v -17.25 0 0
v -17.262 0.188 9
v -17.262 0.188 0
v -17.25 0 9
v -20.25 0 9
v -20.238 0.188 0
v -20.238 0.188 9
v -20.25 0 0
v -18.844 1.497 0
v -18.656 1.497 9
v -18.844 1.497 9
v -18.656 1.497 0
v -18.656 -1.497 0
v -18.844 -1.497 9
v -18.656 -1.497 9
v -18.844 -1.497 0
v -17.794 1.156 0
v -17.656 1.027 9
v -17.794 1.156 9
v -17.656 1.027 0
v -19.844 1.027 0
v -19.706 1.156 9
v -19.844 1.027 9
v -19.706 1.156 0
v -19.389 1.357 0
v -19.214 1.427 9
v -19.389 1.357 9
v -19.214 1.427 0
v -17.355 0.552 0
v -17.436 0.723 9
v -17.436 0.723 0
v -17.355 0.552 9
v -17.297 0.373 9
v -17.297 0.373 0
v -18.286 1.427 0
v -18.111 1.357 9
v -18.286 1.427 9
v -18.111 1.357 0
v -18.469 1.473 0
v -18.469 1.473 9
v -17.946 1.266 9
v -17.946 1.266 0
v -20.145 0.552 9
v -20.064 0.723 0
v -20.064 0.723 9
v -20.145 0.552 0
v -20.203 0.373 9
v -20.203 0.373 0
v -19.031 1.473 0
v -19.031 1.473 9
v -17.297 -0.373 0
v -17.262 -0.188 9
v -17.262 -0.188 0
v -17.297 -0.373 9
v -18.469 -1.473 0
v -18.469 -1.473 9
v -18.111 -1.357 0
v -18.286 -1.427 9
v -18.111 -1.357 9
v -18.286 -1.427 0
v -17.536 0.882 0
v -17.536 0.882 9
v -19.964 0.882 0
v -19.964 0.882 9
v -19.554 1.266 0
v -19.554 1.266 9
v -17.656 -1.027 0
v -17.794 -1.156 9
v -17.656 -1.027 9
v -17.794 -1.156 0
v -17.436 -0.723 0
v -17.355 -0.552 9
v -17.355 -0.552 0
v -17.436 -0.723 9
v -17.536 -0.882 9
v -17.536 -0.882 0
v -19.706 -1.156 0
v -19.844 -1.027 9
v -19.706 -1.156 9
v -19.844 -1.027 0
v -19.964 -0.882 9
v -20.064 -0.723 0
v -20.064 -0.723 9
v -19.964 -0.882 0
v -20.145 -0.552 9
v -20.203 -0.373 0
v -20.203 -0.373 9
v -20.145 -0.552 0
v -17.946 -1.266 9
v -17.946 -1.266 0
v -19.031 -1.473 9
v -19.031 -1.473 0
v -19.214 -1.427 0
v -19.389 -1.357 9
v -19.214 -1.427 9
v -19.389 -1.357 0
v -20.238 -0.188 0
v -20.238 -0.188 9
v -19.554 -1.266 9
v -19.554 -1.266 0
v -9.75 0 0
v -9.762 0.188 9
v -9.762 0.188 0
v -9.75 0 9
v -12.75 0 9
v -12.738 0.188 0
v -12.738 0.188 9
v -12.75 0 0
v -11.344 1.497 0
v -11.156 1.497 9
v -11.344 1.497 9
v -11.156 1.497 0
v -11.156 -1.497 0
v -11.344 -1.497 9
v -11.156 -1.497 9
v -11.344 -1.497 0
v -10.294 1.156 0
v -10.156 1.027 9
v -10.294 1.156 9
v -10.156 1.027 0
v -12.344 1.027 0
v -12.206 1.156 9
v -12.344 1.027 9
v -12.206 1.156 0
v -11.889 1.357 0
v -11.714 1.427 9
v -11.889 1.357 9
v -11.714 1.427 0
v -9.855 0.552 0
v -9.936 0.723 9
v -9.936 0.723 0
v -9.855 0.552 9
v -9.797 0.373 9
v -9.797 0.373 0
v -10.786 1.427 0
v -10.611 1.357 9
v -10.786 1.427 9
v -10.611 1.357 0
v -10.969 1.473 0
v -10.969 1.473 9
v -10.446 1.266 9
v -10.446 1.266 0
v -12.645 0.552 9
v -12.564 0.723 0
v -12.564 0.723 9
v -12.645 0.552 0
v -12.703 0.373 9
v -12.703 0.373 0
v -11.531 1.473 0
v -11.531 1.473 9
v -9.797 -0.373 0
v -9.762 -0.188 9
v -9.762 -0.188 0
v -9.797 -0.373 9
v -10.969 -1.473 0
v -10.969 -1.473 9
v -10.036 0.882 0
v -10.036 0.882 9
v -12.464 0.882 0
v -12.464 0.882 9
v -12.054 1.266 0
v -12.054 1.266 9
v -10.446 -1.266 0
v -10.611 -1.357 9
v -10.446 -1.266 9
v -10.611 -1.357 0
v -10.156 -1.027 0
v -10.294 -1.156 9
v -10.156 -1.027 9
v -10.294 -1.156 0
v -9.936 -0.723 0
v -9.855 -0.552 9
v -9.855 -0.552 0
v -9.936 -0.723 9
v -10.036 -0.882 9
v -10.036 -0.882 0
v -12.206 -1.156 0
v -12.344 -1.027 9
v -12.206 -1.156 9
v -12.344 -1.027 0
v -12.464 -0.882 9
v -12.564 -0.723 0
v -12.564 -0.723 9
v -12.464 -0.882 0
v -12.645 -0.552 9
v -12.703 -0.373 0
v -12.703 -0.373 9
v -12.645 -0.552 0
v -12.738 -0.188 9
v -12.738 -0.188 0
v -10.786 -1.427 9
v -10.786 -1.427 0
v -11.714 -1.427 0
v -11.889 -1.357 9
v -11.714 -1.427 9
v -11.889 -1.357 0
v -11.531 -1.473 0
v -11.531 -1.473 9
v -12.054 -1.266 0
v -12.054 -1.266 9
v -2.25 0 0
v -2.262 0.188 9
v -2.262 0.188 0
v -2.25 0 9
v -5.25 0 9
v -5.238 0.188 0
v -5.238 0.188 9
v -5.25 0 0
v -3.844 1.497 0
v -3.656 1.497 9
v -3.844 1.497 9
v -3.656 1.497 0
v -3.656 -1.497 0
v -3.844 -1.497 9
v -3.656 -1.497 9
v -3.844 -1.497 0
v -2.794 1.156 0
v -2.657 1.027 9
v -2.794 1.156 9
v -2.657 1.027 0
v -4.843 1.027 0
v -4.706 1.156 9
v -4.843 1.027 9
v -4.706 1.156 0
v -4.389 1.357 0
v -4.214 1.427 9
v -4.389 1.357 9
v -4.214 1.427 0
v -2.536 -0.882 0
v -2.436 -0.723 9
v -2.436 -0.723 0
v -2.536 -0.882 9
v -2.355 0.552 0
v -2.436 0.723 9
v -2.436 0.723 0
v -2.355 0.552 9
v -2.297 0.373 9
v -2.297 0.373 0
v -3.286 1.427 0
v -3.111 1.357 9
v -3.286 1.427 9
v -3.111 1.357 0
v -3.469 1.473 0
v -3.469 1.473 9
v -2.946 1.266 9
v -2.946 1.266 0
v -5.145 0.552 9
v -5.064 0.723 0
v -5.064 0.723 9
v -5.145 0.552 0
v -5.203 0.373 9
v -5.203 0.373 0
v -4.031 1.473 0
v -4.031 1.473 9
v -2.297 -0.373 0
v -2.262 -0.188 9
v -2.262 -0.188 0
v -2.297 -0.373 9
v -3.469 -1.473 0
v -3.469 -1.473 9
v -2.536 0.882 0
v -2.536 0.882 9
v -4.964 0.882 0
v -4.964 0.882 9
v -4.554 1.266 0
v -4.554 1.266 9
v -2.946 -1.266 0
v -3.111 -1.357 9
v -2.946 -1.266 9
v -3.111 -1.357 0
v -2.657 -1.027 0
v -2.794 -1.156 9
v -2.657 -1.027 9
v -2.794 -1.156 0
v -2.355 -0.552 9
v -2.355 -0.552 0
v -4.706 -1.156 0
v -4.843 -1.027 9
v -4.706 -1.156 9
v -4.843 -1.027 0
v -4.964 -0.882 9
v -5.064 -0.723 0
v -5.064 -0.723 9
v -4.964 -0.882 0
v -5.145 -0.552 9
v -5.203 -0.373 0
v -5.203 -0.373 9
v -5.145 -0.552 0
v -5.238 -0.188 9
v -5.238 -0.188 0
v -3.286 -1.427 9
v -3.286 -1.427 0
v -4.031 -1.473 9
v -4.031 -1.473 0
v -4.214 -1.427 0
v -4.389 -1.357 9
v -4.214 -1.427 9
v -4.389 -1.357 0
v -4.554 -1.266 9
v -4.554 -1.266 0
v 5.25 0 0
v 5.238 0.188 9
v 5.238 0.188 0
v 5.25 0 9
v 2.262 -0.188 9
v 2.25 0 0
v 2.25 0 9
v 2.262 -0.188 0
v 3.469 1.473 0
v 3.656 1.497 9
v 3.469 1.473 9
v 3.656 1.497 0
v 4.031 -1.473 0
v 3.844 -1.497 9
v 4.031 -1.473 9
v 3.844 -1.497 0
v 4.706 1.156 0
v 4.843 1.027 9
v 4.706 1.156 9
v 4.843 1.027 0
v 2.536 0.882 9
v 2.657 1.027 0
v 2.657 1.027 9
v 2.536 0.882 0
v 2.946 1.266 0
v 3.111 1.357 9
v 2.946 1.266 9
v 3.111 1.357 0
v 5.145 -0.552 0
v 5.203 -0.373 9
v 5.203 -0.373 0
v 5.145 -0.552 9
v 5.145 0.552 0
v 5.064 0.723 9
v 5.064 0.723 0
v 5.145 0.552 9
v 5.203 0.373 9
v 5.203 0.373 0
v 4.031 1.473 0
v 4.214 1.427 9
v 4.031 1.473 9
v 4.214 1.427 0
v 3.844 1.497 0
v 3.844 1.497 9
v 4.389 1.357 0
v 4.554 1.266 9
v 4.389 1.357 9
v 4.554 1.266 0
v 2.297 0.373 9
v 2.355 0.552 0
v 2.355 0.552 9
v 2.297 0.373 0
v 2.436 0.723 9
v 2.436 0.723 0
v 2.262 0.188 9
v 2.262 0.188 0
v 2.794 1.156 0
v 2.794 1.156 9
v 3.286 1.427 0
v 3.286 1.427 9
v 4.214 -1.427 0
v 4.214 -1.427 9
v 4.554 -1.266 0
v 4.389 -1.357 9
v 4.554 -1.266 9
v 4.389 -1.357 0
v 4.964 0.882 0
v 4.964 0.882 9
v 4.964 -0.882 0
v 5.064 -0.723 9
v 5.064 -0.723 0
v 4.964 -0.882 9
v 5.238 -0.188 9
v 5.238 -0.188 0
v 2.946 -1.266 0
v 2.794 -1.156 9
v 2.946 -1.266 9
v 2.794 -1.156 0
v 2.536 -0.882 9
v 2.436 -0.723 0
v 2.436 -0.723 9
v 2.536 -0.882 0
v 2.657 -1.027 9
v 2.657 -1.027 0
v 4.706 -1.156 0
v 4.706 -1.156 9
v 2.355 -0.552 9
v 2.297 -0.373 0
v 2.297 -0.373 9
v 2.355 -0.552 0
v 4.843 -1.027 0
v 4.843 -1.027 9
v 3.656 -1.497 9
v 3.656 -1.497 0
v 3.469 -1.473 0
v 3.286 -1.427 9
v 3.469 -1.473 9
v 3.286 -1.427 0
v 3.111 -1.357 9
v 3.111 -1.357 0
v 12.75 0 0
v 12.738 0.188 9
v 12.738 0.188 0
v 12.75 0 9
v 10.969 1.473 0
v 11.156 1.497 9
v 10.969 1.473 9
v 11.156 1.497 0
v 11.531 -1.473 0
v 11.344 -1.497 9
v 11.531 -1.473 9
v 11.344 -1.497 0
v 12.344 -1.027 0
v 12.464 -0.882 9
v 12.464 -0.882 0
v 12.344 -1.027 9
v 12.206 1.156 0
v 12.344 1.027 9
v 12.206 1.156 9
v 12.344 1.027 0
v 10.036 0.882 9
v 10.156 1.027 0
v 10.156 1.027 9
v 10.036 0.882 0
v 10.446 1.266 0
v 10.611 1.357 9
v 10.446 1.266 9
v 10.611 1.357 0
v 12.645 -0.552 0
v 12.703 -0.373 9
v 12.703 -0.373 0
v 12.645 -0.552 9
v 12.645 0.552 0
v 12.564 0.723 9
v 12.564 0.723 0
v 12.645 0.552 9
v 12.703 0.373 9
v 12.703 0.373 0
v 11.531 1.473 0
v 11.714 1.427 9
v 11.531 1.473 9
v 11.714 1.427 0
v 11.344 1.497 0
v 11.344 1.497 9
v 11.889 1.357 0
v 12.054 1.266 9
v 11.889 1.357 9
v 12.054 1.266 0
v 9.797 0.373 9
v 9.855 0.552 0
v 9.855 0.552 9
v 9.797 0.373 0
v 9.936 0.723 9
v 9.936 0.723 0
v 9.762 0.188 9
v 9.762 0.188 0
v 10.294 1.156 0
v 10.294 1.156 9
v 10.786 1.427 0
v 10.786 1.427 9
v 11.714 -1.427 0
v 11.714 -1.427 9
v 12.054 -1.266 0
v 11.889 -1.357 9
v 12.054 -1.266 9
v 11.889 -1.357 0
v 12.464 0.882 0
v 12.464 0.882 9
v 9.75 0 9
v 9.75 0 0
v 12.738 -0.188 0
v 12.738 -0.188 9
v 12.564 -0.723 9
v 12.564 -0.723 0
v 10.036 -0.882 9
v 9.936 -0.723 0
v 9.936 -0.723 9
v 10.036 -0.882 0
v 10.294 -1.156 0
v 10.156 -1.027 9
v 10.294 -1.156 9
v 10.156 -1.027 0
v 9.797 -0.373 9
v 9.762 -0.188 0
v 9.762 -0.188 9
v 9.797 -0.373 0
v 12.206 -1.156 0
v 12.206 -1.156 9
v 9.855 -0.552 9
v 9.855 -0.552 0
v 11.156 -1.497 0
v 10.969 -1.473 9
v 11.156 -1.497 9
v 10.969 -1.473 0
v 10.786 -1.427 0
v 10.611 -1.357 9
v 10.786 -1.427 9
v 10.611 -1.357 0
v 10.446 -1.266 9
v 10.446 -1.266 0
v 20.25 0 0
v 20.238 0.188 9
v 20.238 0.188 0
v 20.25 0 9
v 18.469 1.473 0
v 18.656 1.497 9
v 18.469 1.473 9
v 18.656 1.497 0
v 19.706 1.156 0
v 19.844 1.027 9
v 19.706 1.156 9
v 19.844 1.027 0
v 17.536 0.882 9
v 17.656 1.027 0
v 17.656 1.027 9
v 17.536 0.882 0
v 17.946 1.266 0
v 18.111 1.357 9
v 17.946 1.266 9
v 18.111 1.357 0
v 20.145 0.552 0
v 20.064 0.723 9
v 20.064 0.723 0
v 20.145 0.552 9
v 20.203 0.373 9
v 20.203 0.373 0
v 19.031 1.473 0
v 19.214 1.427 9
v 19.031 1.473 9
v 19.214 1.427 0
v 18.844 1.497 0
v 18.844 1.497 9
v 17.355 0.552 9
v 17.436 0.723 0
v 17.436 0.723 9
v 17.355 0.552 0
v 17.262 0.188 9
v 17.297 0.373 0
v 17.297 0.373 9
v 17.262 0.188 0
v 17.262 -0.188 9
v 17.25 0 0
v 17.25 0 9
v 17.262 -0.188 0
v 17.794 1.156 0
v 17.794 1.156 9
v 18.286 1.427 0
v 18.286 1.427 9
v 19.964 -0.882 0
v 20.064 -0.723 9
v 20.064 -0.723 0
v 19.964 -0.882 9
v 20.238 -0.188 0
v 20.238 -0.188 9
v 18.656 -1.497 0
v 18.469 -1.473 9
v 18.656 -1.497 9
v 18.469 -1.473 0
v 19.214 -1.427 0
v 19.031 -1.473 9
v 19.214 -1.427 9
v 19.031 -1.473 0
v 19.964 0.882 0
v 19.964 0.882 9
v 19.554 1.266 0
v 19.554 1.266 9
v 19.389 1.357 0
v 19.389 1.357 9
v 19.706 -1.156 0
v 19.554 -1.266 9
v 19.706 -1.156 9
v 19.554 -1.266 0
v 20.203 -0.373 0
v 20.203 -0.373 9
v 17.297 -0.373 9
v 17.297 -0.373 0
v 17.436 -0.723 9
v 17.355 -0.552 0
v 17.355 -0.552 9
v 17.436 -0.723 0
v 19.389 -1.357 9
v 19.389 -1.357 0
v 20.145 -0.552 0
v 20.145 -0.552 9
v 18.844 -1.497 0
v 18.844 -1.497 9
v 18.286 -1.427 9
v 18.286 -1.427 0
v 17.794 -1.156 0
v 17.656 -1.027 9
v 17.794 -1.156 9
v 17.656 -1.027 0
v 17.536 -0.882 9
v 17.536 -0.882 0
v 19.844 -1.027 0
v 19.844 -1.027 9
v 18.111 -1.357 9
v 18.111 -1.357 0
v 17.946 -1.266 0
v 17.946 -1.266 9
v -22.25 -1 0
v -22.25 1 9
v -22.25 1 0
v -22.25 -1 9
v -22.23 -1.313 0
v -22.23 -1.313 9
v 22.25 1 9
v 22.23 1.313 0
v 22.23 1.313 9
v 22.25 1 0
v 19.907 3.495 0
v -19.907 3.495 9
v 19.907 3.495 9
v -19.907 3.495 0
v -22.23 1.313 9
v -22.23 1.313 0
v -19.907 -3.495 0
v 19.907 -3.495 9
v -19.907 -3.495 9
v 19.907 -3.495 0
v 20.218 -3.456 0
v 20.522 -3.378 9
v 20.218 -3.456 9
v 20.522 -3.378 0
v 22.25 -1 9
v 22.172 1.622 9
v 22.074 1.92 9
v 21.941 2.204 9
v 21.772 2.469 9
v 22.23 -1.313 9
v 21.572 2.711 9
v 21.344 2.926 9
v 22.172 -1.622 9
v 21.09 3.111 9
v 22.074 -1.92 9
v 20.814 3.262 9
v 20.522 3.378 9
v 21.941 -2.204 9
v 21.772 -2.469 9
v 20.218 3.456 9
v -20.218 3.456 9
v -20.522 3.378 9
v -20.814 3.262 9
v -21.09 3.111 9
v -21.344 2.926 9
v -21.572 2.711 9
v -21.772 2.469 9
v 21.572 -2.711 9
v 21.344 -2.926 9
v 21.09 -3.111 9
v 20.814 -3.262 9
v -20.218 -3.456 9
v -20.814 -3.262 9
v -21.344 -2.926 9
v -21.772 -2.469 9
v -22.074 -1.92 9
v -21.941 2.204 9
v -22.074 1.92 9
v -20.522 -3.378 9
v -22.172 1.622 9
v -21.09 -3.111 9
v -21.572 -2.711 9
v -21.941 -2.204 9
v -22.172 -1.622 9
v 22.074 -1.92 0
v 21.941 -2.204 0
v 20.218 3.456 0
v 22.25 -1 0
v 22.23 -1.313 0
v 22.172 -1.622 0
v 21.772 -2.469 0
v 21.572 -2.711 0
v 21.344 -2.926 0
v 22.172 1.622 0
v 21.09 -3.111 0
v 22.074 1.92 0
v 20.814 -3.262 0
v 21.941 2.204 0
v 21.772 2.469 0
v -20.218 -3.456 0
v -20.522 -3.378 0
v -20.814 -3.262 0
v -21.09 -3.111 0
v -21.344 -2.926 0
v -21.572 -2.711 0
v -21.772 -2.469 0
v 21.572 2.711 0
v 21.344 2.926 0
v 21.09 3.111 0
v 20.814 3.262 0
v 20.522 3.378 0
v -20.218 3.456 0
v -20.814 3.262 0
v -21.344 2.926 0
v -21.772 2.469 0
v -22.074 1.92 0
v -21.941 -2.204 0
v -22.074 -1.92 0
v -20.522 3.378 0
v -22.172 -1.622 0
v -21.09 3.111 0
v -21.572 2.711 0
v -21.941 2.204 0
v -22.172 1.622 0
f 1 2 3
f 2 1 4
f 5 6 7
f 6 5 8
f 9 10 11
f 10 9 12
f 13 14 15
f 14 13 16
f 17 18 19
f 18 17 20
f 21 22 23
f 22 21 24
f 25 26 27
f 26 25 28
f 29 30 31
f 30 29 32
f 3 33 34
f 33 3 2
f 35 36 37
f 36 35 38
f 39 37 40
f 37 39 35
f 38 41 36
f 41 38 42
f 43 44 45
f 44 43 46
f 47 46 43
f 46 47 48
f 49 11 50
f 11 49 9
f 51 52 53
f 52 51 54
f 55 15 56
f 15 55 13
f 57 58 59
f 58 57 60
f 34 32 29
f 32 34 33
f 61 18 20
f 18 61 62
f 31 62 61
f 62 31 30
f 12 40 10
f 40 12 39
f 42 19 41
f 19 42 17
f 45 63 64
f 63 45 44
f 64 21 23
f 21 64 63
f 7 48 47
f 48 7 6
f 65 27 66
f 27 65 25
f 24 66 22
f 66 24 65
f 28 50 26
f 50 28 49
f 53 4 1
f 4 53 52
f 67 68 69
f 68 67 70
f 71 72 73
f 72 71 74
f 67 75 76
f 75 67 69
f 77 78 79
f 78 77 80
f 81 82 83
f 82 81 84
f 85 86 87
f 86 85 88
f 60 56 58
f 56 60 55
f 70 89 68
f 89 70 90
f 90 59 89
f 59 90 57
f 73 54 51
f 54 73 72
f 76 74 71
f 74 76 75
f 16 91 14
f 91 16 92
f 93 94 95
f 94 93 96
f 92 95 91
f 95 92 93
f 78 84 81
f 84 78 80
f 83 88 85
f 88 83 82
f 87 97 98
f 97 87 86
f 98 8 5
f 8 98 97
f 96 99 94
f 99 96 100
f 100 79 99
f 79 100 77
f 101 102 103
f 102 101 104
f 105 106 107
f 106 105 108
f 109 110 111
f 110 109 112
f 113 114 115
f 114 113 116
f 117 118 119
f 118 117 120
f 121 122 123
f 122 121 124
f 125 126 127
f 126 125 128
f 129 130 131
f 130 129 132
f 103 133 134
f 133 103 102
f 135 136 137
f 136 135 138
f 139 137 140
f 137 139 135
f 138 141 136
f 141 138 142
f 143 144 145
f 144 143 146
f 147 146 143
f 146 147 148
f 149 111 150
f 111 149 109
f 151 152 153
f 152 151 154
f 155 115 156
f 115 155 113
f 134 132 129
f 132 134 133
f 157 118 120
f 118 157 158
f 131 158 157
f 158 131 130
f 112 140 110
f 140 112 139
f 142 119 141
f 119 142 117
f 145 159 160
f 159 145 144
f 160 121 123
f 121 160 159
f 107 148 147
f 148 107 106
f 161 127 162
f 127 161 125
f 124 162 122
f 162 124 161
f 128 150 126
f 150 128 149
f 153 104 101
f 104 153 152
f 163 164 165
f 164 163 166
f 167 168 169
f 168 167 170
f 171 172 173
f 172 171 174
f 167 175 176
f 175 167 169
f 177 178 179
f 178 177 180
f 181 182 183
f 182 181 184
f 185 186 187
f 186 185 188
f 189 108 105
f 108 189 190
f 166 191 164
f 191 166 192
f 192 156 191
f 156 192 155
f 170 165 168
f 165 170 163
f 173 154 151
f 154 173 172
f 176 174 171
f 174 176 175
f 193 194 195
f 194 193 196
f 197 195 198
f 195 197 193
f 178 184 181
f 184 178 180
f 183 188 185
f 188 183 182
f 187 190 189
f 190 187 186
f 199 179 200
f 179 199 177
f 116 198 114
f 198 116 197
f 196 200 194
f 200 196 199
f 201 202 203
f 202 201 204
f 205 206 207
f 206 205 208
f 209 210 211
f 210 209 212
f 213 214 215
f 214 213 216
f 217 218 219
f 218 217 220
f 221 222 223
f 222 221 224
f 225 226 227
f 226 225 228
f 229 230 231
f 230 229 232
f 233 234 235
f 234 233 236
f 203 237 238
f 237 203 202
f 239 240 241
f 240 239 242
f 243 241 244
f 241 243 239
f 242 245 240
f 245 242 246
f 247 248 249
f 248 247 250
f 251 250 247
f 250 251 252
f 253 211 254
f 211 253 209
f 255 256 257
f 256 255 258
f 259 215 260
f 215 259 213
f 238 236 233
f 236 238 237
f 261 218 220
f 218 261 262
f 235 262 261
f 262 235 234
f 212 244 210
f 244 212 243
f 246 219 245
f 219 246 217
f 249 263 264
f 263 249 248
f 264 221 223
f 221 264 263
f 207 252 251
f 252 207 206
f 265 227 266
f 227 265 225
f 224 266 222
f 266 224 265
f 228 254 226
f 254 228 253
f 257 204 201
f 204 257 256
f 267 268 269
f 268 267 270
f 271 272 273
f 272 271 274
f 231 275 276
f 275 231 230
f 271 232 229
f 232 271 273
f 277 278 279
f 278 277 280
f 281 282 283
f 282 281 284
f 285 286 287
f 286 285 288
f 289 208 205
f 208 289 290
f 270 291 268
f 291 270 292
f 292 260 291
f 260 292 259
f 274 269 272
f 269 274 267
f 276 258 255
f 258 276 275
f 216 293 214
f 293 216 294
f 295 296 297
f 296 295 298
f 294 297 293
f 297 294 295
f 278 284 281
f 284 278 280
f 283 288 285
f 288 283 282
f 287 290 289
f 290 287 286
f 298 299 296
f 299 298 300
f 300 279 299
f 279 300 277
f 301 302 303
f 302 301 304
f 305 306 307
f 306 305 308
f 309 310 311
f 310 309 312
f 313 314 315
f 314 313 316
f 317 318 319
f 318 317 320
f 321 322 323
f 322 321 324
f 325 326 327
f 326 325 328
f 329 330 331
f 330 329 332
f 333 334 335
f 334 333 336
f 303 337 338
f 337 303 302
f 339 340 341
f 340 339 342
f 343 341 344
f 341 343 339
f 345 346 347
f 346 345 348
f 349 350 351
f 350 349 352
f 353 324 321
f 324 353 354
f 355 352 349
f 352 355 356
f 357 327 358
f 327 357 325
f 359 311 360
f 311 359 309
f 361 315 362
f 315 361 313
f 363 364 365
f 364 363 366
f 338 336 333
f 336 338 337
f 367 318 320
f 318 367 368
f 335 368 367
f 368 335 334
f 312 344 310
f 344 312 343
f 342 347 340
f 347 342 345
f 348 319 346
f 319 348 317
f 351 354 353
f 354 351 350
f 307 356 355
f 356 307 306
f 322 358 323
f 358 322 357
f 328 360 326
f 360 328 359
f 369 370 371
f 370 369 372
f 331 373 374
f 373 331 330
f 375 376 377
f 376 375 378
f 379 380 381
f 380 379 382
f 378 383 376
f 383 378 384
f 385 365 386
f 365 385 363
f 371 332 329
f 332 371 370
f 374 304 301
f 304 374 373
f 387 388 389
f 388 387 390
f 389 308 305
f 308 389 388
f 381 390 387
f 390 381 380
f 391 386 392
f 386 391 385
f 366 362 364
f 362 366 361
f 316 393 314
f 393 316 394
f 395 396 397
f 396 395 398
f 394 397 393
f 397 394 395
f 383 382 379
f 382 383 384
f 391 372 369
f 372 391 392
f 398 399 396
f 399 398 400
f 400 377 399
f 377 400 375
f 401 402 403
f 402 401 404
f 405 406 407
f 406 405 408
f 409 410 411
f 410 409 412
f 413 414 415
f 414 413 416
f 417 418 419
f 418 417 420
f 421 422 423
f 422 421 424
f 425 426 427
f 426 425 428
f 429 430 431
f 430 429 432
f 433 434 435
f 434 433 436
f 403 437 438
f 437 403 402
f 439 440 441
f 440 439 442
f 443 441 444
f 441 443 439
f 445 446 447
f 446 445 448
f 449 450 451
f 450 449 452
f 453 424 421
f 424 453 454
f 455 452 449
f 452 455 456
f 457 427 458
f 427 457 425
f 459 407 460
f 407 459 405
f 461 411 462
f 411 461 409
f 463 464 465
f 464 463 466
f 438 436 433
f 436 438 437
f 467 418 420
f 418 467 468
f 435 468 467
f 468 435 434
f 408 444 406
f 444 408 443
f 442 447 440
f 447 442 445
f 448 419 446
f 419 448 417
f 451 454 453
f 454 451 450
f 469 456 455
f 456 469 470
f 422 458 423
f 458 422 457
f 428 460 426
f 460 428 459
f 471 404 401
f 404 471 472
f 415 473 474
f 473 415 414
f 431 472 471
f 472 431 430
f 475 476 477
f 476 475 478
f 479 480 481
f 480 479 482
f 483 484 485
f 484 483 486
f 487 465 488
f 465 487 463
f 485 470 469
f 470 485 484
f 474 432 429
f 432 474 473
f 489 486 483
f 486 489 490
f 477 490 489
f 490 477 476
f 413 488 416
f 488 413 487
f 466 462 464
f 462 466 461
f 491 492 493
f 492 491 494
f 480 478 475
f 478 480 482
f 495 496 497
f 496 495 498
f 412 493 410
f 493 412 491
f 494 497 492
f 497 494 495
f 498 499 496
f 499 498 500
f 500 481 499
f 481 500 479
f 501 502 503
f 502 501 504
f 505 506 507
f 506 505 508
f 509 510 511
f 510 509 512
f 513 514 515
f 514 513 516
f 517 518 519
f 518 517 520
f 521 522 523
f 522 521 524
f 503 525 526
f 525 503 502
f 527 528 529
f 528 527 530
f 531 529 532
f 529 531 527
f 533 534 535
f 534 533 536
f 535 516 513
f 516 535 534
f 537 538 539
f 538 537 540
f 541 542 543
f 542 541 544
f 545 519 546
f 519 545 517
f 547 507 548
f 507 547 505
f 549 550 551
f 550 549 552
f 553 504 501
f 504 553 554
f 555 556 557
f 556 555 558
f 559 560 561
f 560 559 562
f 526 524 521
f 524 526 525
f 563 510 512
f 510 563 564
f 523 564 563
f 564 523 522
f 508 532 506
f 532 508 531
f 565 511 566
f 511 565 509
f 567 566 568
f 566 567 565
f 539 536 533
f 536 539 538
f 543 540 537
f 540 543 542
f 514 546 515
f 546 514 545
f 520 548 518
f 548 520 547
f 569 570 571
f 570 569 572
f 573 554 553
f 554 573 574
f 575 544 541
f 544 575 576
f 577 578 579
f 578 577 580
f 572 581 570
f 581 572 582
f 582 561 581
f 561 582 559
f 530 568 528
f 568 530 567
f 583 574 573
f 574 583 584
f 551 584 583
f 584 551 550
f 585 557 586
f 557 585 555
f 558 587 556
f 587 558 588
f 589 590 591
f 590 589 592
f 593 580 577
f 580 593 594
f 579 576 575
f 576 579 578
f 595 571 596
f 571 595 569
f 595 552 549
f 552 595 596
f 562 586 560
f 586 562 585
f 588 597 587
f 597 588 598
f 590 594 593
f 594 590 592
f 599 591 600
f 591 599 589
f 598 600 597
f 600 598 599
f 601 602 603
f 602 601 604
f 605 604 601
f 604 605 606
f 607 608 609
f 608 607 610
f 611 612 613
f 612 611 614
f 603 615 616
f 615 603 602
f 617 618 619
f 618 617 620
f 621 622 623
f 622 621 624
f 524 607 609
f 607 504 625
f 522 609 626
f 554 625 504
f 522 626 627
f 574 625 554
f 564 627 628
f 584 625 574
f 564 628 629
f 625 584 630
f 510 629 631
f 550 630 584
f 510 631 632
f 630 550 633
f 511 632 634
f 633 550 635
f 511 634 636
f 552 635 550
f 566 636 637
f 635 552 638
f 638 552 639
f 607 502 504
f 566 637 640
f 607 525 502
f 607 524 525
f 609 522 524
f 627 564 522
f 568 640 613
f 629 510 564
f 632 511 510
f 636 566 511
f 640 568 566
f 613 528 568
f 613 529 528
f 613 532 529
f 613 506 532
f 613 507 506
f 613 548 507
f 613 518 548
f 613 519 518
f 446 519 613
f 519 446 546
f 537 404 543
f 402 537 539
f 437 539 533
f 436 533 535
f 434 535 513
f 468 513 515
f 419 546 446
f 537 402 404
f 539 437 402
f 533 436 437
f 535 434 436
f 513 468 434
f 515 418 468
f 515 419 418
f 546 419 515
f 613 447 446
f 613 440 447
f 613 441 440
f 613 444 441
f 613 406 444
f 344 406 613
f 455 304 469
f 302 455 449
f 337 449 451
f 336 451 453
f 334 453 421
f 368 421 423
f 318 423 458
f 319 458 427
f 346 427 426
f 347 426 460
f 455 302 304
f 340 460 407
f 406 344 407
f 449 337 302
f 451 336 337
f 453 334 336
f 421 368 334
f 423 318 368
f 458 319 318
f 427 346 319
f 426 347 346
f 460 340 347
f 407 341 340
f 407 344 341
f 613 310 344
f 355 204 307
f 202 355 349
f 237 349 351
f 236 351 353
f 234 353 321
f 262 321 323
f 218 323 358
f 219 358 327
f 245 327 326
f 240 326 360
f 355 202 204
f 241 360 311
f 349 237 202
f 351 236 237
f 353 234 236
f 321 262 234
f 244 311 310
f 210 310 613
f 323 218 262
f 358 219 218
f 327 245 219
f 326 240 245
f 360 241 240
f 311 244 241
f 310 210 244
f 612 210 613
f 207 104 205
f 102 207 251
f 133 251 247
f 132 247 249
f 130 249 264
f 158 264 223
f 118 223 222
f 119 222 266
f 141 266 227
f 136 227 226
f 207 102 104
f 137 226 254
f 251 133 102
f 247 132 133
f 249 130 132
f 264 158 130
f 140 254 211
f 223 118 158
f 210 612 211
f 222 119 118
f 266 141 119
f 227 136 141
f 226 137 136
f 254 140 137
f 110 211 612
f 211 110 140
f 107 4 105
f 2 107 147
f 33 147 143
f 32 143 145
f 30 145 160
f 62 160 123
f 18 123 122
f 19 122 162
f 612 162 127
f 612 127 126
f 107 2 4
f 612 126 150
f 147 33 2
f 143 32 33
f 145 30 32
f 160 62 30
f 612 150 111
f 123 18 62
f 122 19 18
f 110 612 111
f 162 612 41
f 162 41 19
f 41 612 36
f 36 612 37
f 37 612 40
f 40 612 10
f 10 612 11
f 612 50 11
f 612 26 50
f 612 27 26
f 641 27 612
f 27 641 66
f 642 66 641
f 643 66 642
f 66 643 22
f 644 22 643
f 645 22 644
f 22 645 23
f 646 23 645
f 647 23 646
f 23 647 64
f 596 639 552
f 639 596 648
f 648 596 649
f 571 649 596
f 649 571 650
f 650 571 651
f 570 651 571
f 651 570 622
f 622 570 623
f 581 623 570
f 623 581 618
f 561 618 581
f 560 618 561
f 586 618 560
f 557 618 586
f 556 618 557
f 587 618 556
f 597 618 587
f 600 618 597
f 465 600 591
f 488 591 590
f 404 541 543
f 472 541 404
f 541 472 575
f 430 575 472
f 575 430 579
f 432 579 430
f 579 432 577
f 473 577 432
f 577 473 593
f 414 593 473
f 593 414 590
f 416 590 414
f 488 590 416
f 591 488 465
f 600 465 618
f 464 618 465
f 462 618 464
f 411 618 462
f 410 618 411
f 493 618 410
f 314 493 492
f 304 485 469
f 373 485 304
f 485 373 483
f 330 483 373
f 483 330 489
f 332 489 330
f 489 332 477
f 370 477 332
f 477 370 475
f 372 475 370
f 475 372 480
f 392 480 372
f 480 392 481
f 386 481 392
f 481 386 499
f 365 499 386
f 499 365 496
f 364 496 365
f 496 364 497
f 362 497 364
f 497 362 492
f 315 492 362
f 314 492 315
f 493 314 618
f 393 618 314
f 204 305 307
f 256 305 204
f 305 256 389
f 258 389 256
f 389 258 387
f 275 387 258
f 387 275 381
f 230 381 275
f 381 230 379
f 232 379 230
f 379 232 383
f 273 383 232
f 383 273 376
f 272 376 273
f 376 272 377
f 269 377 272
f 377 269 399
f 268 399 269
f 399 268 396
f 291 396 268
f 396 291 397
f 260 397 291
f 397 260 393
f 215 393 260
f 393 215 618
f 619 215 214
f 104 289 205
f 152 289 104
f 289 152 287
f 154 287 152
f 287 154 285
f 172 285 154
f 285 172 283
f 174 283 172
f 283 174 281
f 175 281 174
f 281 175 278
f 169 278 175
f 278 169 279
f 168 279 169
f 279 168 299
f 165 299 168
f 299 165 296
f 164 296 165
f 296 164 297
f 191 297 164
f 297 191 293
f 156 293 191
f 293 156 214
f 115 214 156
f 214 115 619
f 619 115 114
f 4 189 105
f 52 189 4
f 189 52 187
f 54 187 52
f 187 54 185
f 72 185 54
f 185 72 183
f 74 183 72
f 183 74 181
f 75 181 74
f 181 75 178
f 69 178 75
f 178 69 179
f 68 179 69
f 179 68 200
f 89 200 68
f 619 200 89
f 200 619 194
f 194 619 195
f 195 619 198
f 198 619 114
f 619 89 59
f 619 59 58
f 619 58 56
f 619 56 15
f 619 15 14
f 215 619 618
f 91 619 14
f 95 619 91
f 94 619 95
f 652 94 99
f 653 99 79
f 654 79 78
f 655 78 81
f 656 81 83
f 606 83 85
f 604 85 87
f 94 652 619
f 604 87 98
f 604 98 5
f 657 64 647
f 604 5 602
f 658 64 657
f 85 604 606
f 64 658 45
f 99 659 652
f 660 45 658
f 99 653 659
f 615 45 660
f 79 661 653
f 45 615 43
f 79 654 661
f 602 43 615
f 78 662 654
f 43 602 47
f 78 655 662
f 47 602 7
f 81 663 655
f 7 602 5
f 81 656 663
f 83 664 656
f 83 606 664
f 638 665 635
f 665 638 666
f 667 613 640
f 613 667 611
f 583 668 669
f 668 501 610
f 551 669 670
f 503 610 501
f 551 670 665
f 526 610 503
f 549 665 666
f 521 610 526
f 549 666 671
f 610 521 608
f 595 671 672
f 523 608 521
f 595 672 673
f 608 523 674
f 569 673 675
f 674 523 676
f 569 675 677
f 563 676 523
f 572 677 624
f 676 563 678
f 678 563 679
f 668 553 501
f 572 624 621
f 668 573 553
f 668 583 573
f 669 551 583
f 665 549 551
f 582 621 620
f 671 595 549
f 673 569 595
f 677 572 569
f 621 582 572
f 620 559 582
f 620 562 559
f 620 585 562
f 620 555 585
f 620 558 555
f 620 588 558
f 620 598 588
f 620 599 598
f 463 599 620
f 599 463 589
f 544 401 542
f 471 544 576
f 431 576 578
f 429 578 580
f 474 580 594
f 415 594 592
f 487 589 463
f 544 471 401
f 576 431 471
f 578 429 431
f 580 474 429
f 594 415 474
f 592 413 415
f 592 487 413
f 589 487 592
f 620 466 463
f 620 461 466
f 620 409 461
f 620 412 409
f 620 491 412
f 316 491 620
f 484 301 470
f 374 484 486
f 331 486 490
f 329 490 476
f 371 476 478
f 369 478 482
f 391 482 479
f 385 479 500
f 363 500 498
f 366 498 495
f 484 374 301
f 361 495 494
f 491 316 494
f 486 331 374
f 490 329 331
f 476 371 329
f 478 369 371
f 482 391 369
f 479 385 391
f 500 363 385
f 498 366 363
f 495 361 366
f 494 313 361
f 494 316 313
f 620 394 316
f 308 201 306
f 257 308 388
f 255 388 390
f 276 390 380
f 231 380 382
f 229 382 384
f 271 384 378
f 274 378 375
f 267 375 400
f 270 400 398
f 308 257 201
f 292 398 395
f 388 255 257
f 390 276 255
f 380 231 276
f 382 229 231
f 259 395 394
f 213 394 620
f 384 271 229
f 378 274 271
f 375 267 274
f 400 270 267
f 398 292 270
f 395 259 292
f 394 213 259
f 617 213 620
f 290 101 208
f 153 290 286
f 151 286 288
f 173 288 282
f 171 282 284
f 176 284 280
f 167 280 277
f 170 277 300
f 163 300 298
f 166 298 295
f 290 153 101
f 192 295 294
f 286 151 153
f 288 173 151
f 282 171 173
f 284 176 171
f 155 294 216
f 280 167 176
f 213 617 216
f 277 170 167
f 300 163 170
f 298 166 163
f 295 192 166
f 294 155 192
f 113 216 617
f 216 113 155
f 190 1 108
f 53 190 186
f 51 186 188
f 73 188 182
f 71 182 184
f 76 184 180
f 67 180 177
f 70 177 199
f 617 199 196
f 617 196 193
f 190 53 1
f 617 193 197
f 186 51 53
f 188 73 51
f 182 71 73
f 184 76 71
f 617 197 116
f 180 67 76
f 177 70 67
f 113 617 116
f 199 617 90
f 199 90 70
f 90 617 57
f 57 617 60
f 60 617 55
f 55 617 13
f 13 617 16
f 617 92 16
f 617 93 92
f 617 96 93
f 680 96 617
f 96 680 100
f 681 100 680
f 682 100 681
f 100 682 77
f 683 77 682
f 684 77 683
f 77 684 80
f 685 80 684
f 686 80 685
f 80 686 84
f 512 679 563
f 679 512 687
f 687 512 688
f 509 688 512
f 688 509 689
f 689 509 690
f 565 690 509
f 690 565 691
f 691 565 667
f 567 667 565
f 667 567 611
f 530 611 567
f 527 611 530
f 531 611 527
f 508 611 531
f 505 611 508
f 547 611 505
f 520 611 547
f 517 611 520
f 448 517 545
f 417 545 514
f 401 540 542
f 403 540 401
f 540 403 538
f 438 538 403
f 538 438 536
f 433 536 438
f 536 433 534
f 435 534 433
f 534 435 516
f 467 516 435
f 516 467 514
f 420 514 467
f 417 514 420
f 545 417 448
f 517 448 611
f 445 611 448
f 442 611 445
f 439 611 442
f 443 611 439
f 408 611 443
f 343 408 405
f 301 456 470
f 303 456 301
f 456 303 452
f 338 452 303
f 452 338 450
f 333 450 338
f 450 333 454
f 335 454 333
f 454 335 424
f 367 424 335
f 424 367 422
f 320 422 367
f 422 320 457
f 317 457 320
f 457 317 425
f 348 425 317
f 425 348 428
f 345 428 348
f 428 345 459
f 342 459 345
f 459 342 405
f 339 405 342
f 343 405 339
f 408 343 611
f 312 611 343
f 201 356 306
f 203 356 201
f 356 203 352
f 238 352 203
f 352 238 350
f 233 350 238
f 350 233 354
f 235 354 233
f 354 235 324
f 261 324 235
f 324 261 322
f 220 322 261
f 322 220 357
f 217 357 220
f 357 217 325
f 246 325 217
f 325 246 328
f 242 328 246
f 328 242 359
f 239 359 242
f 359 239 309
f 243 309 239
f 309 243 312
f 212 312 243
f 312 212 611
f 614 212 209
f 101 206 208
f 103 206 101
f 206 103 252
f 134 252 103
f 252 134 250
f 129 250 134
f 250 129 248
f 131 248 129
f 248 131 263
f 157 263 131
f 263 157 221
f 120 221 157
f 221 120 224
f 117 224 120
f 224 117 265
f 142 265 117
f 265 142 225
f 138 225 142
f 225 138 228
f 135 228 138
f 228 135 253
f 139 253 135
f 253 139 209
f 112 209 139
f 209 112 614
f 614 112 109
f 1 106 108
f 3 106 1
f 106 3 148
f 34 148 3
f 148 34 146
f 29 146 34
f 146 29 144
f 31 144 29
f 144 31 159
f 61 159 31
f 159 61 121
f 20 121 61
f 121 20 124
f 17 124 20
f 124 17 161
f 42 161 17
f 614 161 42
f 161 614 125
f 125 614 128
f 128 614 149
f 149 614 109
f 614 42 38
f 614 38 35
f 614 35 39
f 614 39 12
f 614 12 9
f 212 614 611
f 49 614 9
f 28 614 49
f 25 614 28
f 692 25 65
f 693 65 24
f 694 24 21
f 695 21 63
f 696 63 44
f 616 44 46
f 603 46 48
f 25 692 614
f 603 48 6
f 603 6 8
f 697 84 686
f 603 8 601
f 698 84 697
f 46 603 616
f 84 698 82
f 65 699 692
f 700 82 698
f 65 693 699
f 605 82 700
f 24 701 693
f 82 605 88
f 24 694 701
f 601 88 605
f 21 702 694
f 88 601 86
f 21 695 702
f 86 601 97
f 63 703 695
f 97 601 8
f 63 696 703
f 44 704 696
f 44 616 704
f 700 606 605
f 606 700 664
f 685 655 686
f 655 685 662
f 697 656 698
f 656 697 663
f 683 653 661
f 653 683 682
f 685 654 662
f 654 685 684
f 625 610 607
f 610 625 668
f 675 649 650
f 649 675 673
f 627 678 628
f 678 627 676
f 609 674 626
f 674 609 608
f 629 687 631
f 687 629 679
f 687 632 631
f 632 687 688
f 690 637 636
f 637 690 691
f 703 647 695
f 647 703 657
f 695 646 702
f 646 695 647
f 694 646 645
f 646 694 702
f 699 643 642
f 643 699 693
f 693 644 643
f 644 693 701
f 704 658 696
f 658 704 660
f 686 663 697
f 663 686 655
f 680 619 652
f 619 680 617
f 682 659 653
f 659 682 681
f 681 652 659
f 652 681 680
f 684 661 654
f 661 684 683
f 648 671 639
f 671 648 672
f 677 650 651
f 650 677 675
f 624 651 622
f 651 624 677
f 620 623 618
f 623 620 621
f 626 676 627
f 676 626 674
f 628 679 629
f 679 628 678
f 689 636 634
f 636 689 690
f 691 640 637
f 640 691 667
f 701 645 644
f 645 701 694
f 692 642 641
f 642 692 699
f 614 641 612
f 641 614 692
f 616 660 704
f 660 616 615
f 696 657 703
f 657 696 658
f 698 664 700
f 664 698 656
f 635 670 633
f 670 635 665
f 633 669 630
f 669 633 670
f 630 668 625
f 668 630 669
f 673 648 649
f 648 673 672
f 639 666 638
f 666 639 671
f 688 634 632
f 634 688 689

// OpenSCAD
$fn = 50;


difference() {
	union() {
		translate(v = [0, 0, 0]) {
			rotate(a = [0, 0, 0]) {
				hull() {
					translate(v = [-19.7500000000, 1.0000000000, 0]) {
						rotate(a = [0, 0, 0]) {
							translate(v = [0, 0, 0]) {
								rotate(a = [0, 0, 0]) {
									cylinder(h = 9, r = 2.5000000000);
								}
							}
						}
					}
					translate(v = [19.7500000000, 1.0000000000, 0]) {
						rotate(a = [0, 0, 0]) {
							translate(v = [0, 0, 0]) {
								rotate(a = [0, 0, 0]) {
									cylinder(h = 9, r = 2.5000000000);
								}
							}
						}
					}
					translate(v = [-19.7500000000, -1.0000000000, 0]) {
						rotate(a = [0, 0, 0]) {
							translate(v = [0, 0, 0]) {
								rotate(a = [0, 0, 0]) {
									cylinder(h = 9, r = 2.5000000000);
								}
							}
						}
					}
					translate(v = [19.7500000000, -1.0000000000, 0]) {
						rotate(a = [0, 0, 0]) {
							translate(v = [0, 0, 0]) {
								rotate(a = [0, 0, 0]) {
									cylinder(h = 9, r = 2.5000000000);
								}
							}
						}
					}
				}
			}
		}
	}
	union() {
		translate(v = [-18.7500000000, 0.0000000000, 0]) {
			rotate(a = [0, 0, 0]) {
				translate(v = [0, 0, -50]) {
					rotate(a = [0, 0, 0]) {
						cylinder(h = 100, r = 1.5000000000);
					}
				}
			}
		}
		translate(v = [-11.2500000000, 0.0000000000, 0]) {
			rotate(a = [0, 0, 0]) {
				translate(v = [0, 0, -50]) {
					rotate(a = [0, 0, 0]) {
						cylinder(h = 100, r = 1.5000000000);
					}
				}
			}
		}
		translate(v = [-3.7500000000, 0.0000000000, 0]) {
			rotate(a = [0, 0, 0]) {
				translate(v = [0, 0, -50]) {
					rotate(a = [0, 0, 0]) {
						cylinder(h = 100, r = 1.5000000000);
					}
				}
			}
		}
		translate(v = [3.7500000000, 0.0000000000, 0]) {
			rotate(a = [0, 0, 0]) {
				translate(v = [0, 0, -50]) {
					rotate(a = [0, 0, 0]) {
						cylinder(h = 100, r = 1.5000000000);
					}
				}
			}
		}
		translate(v = [11.2500000000, 0.0000000000, 0]) {
			rotate(a = [0, 0, 0]) {
				translate(v = [0, 0, -50]) {
					rotate(a = [0, 0, 0]) {
						cylinder(h = 100, r = 1.5000000000);
					}
				}
			}
		}
		translate(v = [18.7500000000, 0.0000000000, 0]) {
			rotate(a = [0, 0, 0]) {
				translate(v = [0, 0, -50]) {
					rotate(a = [0, 0, 0]) {
						cylinder(h = 100, r = 1.5000000000);
					}
				}
			}
		}
	}
}
